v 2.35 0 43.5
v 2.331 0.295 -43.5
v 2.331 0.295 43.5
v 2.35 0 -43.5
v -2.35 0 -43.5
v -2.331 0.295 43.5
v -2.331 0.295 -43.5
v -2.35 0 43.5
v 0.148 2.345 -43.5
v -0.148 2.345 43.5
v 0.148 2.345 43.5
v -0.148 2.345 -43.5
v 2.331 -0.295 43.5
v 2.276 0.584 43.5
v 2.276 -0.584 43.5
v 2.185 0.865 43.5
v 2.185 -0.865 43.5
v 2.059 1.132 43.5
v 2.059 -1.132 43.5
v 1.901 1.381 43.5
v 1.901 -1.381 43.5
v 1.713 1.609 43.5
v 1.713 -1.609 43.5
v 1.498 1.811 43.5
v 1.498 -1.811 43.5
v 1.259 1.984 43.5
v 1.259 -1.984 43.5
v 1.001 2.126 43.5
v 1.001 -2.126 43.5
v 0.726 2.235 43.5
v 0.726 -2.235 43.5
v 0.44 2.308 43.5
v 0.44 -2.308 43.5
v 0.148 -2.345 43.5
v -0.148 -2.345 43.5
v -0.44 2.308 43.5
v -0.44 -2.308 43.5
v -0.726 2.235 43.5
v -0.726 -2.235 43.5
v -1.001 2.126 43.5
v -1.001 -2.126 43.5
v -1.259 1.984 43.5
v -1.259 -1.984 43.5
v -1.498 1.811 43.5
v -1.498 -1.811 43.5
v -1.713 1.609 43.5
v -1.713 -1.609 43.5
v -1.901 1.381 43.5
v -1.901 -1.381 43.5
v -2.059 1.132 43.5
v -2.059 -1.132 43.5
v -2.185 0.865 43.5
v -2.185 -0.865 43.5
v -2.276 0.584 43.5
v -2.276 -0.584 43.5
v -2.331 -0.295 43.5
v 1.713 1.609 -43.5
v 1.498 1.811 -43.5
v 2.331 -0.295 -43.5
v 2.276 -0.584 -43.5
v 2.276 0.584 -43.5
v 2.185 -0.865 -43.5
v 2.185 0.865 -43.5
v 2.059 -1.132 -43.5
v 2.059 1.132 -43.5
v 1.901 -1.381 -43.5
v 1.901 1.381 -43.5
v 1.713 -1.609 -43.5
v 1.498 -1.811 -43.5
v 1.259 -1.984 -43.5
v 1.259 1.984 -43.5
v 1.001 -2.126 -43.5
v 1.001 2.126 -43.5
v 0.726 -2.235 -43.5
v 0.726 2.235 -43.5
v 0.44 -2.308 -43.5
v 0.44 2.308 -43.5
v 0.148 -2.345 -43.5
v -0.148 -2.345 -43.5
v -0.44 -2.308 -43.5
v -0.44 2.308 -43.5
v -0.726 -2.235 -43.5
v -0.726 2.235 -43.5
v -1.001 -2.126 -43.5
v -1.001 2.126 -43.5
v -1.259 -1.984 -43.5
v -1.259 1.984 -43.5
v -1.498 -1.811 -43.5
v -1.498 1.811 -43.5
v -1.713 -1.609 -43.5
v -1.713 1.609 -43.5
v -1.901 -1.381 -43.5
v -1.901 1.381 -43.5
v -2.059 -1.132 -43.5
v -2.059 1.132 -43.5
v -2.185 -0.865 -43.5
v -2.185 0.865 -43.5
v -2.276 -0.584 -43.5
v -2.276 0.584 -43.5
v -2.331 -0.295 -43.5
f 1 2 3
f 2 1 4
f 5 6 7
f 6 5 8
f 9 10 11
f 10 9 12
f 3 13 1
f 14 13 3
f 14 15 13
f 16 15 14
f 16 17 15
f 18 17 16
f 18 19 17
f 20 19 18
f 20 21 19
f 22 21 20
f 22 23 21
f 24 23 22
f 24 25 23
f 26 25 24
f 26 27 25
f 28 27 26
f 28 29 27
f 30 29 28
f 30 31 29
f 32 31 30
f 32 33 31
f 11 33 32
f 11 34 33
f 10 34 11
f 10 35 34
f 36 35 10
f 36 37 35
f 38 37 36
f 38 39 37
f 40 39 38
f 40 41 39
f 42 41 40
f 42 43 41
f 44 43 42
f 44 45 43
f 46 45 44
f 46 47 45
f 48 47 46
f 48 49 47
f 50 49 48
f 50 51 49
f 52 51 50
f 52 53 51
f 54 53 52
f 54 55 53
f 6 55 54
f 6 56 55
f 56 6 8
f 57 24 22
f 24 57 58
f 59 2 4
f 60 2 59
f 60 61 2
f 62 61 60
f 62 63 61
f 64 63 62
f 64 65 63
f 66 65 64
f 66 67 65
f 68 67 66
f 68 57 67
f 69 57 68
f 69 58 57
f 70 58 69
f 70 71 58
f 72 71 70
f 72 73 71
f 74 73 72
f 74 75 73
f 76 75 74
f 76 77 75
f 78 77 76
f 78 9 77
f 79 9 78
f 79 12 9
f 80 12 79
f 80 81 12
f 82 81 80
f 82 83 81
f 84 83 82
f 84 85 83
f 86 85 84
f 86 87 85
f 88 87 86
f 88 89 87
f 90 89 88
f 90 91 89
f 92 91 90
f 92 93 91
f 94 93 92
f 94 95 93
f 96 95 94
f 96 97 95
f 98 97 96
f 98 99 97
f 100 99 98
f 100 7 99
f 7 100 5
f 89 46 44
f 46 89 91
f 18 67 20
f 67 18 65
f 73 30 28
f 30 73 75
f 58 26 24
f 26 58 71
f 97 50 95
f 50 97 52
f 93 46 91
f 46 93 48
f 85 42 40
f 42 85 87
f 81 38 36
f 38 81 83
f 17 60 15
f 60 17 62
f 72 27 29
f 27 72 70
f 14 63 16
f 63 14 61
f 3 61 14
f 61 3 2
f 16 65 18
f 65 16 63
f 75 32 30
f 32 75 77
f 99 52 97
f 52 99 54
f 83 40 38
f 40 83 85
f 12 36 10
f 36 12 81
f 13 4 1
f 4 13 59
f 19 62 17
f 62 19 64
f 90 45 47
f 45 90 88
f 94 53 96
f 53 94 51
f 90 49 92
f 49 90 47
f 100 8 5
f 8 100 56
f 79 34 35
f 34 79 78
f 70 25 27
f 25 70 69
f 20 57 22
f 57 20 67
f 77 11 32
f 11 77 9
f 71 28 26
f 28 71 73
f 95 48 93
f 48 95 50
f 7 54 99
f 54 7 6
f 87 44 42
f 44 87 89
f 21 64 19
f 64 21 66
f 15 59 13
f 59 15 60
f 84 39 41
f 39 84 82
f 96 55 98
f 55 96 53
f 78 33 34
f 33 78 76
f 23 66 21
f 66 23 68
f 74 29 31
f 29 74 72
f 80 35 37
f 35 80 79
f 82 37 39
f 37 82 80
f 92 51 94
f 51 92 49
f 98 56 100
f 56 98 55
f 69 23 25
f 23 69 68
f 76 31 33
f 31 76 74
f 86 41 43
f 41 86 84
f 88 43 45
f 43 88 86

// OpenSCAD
$fn = 50;


difference() {
	union() {
		translate(v = [0, 0, -43.5000000000]) {
			cylinder(h = 87, r = 2.3500000000);
		}
	}
	union() {
		translate(v = [0, 0, -100.0000000000]) {
			cylinder(h = 200, r = 0);
		}
	}
}
